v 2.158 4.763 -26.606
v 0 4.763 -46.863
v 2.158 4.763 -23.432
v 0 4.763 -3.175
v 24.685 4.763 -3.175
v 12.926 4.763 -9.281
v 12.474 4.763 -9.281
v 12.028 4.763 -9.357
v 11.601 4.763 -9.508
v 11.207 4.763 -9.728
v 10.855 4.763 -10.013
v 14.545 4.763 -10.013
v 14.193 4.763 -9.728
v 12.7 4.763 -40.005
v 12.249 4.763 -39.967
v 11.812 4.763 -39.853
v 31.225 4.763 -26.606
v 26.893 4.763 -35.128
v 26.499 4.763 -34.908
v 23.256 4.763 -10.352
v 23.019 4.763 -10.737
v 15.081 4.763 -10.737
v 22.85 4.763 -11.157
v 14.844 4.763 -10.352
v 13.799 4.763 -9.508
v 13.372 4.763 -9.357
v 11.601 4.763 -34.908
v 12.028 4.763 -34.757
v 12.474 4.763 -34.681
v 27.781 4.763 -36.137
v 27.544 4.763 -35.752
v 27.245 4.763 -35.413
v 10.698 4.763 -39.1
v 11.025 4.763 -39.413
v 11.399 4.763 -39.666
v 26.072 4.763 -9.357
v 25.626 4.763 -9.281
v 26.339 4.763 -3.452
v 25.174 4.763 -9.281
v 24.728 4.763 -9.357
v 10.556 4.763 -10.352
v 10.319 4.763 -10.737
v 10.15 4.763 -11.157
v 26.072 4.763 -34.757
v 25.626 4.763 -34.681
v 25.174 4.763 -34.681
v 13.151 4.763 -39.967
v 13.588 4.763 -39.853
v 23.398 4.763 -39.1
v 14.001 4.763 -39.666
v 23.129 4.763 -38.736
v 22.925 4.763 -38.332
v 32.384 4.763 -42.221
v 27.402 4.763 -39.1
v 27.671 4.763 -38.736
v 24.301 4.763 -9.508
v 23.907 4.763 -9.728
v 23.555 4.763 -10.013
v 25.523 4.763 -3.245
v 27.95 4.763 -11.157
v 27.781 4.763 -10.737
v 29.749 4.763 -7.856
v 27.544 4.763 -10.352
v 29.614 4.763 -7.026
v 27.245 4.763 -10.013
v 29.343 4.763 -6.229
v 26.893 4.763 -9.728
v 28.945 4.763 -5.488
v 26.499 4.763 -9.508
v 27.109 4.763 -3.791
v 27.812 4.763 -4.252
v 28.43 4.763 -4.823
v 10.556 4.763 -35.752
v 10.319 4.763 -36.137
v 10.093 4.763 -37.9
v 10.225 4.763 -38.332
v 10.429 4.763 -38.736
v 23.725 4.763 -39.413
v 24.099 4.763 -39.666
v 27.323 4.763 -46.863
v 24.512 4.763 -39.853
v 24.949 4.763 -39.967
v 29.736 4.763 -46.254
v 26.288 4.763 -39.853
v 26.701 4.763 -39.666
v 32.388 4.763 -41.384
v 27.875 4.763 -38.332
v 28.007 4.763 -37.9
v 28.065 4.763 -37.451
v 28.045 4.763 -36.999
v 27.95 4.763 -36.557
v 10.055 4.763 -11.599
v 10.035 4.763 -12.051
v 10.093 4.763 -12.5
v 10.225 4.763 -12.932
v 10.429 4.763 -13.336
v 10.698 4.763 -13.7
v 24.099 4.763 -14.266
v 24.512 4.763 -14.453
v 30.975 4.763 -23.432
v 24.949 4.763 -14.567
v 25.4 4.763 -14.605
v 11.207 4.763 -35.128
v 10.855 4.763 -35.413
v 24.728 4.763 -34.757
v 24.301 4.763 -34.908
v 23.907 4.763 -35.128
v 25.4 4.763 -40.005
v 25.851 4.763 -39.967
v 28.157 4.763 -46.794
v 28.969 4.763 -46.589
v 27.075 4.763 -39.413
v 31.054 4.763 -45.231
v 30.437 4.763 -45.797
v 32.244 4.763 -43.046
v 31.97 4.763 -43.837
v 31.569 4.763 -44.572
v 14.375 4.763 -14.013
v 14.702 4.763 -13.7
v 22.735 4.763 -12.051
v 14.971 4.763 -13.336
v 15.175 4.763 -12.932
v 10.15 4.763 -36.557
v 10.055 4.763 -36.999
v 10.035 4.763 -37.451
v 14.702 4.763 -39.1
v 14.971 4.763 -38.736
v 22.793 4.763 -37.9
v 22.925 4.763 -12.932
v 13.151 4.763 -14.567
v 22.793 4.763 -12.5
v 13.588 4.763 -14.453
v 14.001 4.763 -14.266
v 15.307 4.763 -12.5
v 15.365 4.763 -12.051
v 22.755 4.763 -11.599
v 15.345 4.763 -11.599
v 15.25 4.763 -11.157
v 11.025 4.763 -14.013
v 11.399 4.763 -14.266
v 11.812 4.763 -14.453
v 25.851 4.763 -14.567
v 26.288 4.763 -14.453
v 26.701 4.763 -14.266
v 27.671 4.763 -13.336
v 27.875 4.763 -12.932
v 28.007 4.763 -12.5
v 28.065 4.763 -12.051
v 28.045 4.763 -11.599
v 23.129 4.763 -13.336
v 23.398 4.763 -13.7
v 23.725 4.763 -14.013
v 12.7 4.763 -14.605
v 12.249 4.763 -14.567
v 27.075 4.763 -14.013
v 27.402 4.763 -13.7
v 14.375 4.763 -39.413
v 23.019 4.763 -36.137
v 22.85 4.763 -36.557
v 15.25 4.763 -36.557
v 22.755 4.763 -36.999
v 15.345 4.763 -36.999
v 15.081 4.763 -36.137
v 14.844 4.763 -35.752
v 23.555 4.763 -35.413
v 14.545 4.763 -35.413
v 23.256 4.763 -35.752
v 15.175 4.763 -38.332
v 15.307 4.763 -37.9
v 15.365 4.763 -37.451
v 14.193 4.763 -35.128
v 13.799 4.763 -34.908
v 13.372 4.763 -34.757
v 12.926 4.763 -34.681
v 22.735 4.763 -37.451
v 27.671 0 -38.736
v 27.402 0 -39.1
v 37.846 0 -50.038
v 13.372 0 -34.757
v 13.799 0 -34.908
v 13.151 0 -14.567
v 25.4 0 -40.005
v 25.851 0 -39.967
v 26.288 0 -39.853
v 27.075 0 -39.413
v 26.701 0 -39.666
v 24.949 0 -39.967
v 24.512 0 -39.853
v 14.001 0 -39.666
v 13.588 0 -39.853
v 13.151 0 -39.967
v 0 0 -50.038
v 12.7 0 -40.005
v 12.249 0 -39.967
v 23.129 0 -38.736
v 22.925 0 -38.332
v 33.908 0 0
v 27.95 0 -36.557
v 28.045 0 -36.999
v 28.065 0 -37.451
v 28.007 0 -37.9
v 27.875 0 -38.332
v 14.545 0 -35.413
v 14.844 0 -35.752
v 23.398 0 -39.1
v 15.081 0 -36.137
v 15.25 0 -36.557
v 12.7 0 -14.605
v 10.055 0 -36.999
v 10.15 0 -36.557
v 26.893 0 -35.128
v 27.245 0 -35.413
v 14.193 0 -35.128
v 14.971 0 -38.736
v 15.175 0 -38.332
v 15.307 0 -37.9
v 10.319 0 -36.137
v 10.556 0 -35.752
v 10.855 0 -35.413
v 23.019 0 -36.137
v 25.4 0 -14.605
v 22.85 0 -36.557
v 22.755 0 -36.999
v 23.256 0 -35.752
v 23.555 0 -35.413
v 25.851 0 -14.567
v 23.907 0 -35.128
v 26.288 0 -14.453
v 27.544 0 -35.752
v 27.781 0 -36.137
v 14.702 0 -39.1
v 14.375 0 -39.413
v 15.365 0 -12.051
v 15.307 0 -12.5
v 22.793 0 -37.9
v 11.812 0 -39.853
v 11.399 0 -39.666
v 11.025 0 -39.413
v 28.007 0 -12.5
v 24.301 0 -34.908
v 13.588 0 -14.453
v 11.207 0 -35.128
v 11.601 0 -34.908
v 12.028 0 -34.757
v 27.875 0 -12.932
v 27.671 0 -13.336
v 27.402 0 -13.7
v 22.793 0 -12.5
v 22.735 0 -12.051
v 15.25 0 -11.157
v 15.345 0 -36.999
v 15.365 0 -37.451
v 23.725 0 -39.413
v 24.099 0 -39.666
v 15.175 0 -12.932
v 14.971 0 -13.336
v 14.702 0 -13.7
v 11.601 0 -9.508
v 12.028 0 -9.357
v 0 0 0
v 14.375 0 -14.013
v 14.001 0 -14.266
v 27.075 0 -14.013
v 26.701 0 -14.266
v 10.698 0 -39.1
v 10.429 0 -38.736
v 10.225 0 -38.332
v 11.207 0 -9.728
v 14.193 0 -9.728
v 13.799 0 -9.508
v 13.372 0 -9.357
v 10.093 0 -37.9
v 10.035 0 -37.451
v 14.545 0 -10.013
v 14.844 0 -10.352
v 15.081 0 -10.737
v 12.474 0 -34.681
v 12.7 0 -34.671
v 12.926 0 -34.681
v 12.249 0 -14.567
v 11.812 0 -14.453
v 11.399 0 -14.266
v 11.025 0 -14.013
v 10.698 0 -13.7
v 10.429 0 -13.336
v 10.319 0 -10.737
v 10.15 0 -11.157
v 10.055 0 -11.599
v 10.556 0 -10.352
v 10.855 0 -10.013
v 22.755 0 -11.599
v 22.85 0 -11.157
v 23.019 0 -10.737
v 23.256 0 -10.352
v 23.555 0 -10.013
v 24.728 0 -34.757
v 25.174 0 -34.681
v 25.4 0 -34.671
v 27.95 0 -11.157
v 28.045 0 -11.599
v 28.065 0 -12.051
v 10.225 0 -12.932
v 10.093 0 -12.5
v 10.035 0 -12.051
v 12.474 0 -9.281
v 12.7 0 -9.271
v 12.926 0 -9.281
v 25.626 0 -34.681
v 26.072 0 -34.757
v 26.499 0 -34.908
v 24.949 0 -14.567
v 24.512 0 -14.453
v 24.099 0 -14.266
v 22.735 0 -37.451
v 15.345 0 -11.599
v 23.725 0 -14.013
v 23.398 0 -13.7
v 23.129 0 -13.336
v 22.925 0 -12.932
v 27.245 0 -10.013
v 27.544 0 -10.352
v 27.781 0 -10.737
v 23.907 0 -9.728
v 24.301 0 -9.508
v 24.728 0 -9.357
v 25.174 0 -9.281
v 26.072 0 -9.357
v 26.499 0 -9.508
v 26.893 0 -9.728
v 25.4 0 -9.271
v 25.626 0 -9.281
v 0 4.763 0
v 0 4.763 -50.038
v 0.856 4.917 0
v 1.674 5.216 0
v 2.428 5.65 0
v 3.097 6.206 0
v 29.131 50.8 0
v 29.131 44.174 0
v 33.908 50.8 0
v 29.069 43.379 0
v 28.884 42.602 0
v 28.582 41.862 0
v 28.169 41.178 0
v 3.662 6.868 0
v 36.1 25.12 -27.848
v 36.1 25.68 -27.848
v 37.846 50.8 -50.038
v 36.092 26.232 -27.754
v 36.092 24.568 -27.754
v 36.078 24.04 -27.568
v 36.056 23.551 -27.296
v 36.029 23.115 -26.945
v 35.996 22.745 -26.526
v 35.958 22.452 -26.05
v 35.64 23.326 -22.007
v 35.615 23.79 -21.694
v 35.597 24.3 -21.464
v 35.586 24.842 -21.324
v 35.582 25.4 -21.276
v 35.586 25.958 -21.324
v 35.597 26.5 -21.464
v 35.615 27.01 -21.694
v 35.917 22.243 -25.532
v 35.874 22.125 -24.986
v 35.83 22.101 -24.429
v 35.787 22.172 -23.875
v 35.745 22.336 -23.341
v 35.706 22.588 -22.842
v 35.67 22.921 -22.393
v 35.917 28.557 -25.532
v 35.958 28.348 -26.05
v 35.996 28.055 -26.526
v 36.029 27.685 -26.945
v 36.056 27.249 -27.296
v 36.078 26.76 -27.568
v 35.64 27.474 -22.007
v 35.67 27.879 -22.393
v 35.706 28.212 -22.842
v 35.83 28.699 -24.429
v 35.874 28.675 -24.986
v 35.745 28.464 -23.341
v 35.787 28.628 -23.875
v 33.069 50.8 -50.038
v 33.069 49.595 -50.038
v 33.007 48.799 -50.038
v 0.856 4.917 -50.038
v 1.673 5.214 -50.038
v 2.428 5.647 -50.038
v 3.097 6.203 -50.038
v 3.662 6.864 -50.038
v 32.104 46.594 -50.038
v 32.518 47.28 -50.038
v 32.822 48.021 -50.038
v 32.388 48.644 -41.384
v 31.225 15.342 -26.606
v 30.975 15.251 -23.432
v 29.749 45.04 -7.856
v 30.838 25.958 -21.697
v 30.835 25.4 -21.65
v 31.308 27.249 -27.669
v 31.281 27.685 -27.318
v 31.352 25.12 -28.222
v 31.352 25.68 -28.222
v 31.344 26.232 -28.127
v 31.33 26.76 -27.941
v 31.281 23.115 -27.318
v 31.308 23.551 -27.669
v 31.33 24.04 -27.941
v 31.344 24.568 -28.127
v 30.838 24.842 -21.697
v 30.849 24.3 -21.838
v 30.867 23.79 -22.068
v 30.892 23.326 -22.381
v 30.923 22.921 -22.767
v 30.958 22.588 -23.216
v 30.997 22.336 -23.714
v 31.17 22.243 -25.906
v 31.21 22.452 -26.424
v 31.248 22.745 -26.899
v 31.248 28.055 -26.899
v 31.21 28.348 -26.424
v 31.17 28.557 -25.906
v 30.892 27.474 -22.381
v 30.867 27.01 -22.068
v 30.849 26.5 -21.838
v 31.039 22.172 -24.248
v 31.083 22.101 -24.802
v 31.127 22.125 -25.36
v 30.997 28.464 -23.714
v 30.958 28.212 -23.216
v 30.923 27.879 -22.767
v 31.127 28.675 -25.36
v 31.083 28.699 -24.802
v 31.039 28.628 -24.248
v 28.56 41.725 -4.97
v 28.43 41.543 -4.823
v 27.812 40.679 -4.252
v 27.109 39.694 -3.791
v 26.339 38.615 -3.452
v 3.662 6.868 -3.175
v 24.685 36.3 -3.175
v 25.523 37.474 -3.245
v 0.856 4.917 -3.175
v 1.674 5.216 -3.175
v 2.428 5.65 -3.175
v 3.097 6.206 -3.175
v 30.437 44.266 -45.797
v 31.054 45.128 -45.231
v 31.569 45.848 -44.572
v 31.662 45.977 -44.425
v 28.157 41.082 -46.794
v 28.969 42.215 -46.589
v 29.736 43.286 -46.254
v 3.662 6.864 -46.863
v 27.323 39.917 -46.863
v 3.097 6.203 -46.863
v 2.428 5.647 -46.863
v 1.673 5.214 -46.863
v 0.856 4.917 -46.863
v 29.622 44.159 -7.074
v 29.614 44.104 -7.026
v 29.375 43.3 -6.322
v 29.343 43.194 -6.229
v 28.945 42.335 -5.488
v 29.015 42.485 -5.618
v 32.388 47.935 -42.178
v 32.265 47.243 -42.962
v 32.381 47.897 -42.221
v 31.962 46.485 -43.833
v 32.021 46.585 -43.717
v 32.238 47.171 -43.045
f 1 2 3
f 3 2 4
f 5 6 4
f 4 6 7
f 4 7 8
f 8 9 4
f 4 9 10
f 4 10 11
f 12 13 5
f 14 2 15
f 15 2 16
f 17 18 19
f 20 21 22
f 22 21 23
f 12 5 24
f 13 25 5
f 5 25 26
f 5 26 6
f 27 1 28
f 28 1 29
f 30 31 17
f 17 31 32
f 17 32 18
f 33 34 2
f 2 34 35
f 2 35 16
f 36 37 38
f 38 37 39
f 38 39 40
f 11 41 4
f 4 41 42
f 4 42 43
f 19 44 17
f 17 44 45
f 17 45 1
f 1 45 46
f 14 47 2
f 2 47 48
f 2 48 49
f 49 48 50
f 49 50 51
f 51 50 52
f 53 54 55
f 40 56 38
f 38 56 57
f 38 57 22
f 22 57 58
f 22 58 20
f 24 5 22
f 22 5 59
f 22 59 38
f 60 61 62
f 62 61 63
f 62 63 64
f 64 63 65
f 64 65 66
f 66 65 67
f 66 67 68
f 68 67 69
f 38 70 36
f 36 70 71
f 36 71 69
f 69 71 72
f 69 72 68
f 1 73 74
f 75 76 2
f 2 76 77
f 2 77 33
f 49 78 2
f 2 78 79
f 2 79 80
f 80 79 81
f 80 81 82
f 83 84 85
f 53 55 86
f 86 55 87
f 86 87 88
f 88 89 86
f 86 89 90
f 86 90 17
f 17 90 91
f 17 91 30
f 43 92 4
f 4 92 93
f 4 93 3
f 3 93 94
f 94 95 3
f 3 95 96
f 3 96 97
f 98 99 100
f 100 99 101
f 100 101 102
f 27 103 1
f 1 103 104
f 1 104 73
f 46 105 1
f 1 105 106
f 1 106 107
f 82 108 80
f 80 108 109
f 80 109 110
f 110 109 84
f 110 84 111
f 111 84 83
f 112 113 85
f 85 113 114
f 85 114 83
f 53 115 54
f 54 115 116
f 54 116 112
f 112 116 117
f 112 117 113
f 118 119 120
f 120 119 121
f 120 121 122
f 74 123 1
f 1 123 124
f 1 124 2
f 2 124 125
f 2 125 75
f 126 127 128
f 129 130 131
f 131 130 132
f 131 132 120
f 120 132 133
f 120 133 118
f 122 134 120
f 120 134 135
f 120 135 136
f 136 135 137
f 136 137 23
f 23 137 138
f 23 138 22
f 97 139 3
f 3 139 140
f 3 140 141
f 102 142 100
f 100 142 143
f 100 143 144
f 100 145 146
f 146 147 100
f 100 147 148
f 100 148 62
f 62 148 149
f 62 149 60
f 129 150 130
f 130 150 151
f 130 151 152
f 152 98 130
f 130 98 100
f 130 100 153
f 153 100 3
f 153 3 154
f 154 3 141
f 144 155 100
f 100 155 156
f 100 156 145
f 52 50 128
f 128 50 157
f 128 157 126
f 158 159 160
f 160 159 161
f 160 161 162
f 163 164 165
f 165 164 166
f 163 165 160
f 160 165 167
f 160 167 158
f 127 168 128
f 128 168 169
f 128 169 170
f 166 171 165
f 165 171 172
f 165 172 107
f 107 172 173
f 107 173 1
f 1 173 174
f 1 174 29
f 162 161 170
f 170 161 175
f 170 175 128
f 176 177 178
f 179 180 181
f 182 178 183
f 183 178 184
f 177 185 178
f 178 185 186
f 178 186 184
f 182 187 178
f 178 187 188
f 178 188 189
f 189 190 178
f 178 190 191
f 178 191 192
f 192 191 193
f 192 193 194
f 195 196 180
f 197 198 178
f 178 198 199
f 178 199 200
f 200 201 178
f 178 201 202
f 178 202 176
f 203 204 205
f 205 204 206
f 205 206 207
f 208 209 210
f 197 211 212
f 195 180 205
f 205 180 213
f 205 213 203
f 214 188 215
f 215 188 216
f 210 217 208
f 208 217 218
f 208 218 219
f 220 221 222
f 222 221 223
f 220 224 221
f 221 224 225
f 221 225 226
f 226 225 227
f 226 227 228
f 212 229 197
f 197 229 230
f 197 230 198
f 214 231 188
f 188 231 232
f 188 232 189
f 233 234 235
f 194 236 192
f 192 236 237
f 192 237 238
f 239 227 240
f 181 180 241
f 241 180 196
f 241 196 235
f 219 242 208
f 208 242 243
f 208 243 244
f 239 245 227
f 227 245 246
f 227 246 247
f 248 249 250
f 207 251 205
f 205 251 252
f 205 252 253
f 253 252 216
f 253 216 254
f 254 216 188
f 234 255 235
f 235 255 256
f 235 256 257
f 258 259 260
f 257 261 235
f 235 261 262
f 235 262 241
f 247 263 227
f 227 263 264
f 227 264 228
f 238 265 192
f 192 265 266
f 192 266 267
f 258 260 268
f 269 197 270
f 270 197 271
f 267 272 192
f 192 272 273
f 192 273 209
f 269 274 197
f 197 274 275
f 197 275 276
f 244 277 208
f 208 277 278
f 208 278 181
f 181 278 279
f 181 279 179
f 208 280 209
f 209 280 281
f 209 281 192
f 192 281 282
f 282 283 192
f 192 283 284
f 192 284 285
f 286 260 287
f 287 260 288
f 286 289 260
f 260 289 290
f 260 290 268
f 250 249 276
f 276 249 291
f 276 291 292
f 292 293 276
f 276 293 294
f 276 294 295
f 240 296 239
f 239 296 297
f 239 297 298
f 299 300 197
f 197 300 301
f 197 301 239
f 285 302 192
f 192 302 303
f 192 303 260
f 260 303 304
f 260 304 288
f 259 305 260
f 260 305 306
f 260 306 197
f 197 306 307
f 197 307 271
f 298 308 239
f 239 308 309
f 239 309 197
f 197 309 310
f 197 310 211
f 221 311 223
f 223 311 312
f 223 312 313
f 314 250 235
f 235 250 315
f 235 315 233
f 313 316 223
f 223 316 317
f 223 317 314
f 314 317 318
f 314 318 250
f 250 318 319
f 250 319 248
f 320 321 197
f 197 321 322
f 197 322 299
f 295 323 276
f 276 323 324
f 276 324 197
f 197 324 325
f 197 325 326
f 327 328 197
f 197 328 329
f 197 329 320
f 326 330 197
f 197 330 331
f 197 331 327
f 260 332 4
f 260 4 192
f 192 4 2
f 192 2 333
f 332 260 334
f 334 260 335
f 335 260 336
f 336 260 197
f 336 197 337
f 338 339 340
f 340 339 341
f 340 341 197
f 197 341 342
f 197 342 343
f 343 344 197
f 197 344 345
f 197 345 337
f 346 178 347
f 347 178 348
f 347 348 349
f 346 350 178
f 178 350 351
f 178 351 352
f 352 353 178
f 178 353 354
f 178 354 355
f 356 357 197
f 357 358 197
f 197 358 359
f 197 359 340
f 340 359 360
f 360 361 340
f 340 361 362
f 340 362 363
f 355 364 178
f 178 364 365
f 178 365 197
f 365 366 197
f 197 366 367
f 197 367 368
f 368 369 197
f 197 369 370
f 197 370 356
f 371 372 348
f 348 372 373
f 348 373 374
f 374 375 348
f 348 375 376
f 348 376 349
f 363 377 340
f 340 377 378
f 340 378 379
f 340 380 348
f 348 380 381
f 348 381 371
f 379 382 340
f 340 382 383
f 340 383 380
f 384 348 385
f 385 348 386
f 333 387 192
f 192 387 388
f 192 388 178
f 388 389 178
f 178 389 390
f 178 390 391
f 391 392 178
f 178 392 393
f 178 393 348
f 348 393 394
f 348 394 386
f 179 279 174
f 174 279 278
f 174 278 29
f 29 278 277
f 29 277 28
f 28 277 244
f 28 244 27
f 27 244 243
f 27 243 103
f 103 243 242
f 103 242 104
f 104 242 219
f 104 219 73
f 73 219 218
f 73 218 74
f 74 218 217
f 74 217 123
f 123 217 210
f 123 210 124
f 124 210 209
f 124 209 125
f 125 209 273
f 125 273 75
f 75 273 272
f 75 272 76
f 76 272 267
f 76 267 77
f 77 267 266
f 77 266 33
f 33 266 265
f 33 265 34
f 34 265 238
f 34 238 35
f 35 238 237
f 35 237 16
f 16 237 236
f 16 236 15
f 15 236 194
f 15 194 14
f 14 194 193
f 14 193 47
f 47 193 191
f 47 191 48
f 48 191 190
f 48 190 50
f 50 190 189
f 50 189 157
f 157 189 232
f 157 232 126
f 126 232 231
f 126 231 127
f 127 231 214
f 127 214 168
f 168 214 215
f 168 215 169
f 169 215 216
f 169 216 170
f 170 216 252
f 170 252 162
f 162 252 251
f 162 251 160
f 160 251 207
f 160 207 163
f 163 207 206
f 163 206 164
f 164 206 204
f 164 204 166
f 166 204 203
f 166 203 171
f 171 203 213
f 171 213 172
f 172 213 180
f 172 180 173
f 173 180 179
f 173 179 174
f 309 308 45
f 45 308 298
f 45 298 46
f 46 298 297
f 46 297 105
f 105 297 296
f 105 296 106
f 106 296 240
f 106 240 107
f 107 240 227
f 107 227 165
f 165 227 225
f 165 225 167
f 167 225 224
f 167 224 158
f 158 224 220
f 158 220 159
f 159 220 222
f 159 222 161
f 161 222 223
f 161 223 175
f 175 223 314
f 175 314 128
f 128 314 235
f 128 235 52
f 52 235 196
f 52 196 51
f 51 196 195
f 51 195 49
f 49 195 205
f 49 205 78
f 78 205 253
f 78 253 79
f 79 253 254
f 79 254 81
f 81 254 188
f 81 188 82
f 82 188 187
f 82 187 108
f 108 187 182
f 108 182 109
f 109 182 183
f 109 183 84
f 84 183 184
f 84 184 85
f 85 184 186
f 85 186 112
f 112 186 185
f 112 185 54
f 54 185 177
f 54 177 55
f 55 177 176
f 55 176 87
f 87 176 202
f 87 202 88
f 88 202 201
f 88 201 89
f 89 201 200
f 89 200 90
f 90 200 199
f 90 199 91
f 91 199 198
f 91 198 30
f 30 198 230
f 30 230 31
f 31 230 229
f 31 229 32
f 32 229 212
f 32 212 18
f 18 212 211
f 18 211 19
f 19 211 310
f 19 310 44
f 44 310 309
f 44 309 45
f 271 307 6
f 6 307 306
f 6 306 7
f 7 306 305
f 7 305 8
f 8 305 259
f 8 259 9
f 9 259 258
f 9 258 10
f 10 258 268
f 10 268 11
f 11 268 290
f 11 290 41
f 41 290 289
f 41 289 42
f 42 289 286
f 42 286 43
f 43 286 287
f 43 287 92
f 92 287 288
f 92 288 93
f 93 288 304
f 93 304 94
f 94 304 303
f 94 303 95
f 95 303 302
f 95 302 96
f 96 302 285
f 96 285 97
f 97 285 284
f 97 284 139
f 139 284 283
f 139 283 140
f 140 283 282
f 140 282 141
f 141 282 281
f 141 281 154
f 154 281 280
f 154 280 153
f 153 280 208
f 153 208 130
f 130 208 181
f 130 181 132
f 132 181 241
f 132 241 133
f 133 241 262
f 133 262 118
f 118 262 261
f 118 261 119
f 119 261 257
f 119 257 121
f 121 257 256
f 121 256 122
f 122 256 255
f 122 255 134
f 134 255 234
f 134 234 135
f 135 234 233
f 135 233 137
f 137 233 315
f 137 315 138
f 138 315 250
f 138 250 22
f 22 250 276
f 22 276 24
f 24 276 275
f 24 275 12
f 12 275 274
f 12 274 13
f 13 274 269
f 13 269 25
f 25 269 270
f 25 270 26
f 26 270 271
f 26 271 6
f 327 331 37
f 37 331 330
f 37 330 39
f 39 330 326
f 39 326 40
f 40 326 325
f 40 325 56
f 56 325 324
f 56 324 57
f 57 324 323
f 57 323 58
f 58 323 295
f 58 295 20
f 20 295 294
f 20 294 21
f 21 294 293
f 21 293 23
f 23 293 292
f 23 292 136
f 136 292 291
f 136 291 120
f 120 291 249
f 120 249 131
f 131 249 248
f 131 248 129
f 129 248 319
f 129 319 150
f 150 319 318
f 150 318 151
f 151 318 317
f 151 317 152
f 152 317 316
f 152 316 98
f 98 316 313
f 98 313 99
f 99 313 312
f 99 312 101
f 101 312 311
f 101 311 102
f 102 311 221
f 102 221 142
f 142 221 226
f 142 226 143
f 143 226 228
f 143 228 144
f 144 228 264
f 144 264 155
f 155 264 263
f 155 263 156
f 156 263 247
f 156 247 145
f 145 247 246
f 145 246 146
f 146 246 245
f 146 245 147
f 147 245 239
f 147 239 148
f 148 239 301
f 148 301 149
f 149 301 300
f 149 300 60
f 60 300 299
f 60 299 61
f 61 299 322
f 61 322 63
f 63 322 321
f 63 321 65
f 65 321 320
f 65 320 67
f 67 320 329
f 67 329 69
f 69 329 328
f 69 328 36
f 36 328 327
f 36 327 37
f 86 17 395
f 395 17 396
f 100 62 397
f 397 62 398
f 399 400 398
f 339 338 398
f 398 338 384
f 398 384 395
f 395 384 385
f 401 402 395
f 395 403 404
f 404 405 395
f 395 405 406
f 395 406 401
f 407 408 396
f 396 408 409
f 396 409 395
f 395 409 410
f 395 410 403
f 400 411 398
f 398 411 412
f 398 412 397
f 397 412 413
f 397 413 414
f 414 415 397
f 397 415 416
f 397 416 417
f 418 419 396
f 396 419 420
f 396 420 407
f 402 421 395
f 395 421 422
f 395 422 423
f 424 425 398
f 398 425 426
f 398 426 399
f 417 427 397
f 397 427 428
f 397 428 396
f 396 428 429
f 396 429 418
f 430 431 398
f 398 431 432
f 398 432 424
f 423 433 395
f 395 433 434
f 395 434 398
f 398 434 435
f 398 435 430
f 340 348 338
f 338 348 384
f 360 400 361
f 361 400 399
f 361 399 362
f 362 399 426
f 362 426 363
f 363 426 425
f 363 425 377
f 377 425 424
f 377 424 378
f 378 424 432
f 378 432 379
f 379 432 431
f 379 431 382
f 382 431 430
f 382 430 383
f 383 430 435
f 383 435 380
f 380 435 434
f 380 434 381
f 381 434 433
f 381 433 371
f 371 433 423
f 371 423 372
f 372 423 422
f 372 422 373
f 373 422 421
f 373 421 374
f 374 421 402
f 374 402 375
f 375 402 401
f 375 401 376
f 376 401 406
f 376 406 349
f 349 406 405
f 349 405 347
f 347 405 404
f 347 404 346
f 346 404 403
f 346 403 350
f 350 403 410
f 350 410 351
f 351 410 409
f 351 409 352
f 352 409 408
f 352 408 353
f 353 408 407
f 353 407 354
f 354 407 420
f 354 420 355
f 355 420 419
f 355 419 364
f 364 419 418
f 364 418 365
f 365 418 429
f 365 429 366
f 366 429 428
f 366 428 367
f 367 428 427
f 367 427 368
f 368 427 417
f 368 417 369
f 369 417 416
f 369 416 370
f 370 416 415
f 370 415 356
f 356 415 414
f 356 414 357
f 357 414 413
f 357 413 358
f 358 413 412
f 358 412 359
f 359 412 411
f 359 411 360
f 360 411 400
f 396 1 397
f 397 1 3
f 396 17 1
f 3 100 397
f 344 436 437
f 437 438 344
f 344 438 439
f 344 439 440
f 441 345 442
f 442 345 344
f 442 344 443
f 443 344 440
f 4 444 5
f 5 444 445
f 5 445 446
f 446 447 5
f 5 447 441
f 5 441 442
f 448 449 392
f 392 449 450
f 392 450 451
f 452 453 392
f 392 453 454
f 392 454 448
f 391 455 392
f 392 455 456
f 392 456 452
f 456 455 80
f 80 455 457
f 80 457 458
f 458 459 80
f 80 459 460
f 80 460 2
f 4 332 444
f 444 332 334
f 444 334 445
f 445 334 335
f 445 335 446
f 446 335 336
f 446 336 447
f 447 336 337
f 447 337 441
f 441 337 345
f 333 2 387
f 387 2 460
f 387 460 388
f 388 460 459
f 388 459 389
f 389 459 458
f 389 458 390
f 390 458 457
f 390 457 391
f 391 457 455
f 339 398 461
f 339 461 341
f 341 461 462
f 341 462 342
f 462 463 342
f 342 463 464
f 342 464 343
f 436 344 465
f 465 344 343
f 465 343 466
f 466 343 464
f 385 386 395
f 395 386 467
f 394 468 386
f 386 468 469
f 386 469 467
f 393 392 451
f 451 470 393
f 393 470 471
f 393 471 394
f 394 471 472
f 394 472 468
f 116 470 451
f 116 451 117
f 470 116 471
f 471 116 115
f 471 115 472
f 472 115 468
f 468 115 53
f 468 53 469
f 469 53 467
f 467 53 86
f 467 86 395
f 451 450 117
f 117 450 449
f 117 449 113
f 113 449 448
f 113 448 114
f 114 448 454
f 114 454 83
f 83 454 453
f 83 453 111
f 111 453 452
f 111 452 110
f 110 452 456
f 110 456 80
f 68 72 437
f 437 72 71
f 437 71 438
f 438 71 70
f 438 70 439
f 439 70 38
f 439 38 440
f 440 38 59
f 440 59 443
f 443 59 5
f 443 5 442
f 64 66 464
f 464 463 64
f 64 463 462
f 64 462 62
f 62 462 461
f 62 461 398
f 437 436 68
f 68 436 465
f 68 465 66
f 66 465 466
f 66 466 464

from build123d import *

# Parameters (mm, degrees)
SKETCH1_R           = 2.667
BOSS_EXTRUDE1_DEPTH = 4.7625
BOSS_EXTRUDE2_DEPTH = 50.8
SKETCH4_R           = 3.302
CUT_EXTRUDE1_DEPTH  = 55.626
BOSS_EXTRUDE3_DEPTH = 50.038
CUT_EXTRUDE5_DEPTH  = 46.0375
BOSS_EXTRUDE4_DEPTH = 3.175
BOSS_EXTRUDE5_DEPTH = 3.175
FILLET1_R           = 5.08
FILLET2_R           = 5.08


with BuildPart() as part:
    # Sketch1 → Boss-Extrude1 (new body)
    with BuildSketch(Plane(origin=(0, 0, 0), x_dir=(1, 0, 0), z_dir=(0, 1, 0))):
        Polygon((37.846, 50.038), (33.907923994, 0), (0, 0), (0, 50.038), align=None)
        with Locations(Location((12.7, 37.338, 0), (0, 0, 90))):
            Circle(SKETCH1_R, mode=Mode.SUBTRACT)
        with Locations(Location((25.4, 37.338, 0), (0, 0, 90))):
            Circle(SKETCH1_R, mode=Mode.SUBTRACT)
        with Locations(Location((12.7, 11.938, 0), (0, 0, 90))):
            Circle(SKETCH1_R, mode=Mode.SUBTRACT)
        with Locations(Location((25.4, 11.938, 0), (0, 0, 90))):
            Circle(SKETCH1_R, mode=Mode.SUBTRACT)
    extrude(amount=BOSS_EXTRUDE1_DEPTH)

    # Sketch2 → Boss-Extrude2 (add)
    with BuildSketch(Plane.XZ):
        Polygon((29.2288268, -1.246852262), (33.068773405, -50.038), (37.846, -50.038), (33.907923994, 0), (29.130697399, 0), (29.160105192, -0.373661443), align=None)
    extrude(amount=-BOSS_EXTRUDE2_DEPTH)

    # Sketch4 → Cut-Extrude1 (cut)
    with BuildSketch(Plane(origin=(28.951373786, 0, 2.278522532), x_dir=(-0.07845909572784877, 0, 0.9969173337331276), z_dir=(-0.9969173337331276, 0, -0.07845909572784877))):
        with Locations((-27.304568176, 25.4)):
            Circle(SKETCH4_R)
    extrude(amount=-CUT_EXTRUDE1_DEPTH, mode=Mode.SUBTRACT)

    # Sketch5 → Boss-Extrude3 (add)
    with BuildSketch(Plane.XY):
        Polygon((2.157923994, 4.7625), (33.907923994, 16.318554938), (33.907923994, 4.7625), align=None)
    extrude(amount=-BOSS_EXTRUDE3_DEPTH)

    # Sketch7 → Cut-Extrude5 (cut)
    with BuildSketch(Plane(origin=(0, 50.8, 0), x_dir=(1, 0, 0), z_dir=(0, 1, 0))):
        Polygon((33.068773405, 50.038), (31.224674361, 26.6065), (2.157923994, 26.6065), (2.157923994, 50.038), align=None)
        Polygon((2.157923994, 23.4315), (30.974796442, 23.4315), (29.130697399, 0), (2.157923994, 0), align=None)
    extrude(amount=-CUT_EXTRUDE5_DEPTH, mode=Mode.SUBTRACT)

    # Sketch8 → Boss-Extrude4 (add)
    with BuildSketch(Plane.XY):
        Polygon((2.157923994, 4.7625), (33.907923994, 49.2125), (33.907923994, 4.7625), align=None)
    extrude(amount=-BOSS_EXTRUDE4_DEPTH)

    # Sketch9 → Boss-Extrude5 (add)
    with BuildSketch(Plane(origin=(0, 0, -50.038), x_dir=(-1, 0, 0), z_dir=(0, 0, -1))):
        Polygon((-2.157923994, 4.7625), (-33.068773405, 47.9425), (-33.068773405, 4.7625), align=None)
    extrude(amount=-BOSS_EXTRUDE5_DEPTH)

    # Fillet1
    # the kernel refuses this fillet: 5.08 mm, written as the material it adds along each edge
    with BuildSketch(Plane(origin=(2.157923994, 4.7625, 0), x_dir=(-1, 0, 0), z_dir=(0, 0, -1))) as fillet1_piece_1:
        with BuildLine():
            CenterArc((2.629957643, 5.058021771), FILLET1_R, 215.537677792, 49.130706658)
            Line((-1.503808391, 2.105331747), (-1.586483711, 2.046277946))
            Line((-1.586483711, 2.046277946), (-0.082675321, -0.0590538))
            Line((-0.082675321, -0.0590538), (0, -0.1016))
            ThreePointArc((0, -0.1016), (1.078961997, -0.1016), (2.148483321, -0.101160435))
            Line((2.148483321, -0.101160435), (2.157923994, 0))
        make_face()
    extrude(amount=3.175)
    with BuildSketch(Plane(origin=(2.157923994, 4.7625, -50.038), x_dir=(-1, 0, 0), z_dir=(0, 0, 1))) as fillet1_piece_2:
        with BuildLine():
            CenterArc((2.626409807, -5.058351613), FILLET1_R, 95.291428018, 49.111198854)
            Line((-1.504277635, -2.101356304), (-1.586891383, -2.042216397))
            Line((-1.586891383, -2.042216397), (-0.082613749, 0.059139906))
            Line((-0.082613749, 0.059139906), (0, 0.1016))
            ThreePointArc((0, 0.1016), (1.078961997, 0.1016), (2.148554278, 0.101167032))
            Line((2.148554278, 0.101167032), (2.157923994, 0))
        make_face()
    extrude(amount=3.175)
    with BuildSketch(Plane(origin=(29.700338722, 43.32188062, -7.237979285), x_dir=(-0.008566636475351457, 0.9940213341844409, 0.10884943695620641), z_dir=(-0.07799001501429913, -0.10918602102001876, 0.9909570981489993))) as fillet1_piece_3_section:
        with BuildLine():
            CenterArc((FILLET1_R * 0.322839030398, FILLET1_R), FILLET1_R, 234.215790713, 35.784209287)
            Line((-FILLET1_R * 0.261895093237, FILLET1_R * 0.188774997515), (-FILLET1_R * 0.27358977571, FILLET1_R * 0.172550497465))
            Line((-FILLET1_R * 0.27358977571, FILLET1_R * 0.172550497465), (-FILLET1_R * 0.00645678060796, -FILLET1_R * 0.02))
            Line((-FILLET1_R * 0.00645678060796, -FILLET1_R * 0.02), (FILLET1_R * 0.322839030398, -FILLET1_R * 0.02))
            Line((FILLET1_R * 0.322839030398, -FILLET1_R * 0.02), (FILLET1_R * 0.322839030398, 0))
        make_face()
    fillet1_piece_3 = extrude(amount=11.404084587, mode=Mode.PRIVATE)
    fillet1_piece_3 = split(fillet1_piece_3, bisect_by=Plane(origin=(29.0621266, 42.760284123, 0), z_dir=(0, 0, -1)), keep=Keep.TOP, mode=Mode.PRIVATE)
    fillet1_piece_3 = split(fillet1_piece_3, bisect_by=Plane(origin=(29.0621266, 42.760284123, -3.175), z_dir=(0, 0, 1)), keep=Keep.TOP, mode=Mode.PRIVATE)
    add(fillet1_piece_3)
    with BuildSketch(Plane(origin=(32.498558986, 47.145955774, -42.792738849), x_dir=(-0.008548017001345628, 0.994047372778579, 0.1086128541073727), z_dir=(0.07799205797884924, 0.10894870661005905, -0.9909830564748416))) as fillet1_piece_4_section:
        with BuildLine():
            CenterArc((FILLET1_R * 0.32340916623, -FILLET1_R), FILLET1_R, 90, 35.843365579)
            Line((-FILLET1_R * 0.262162212759, -FILLET1_R * 0.189379151447), (-FILLET1_R * 0.273873640339, -FILLET1_R * 0.173166734476))
            Line((-FILLET1_R * 0.273873640339, -FILLET1_R * 0.173166734476), (-FILLET1_R * 0.0064681833246, FILLET1_R * 0.02))
            Line((-FILLET1_R * 0.0064681833246, FILLET1_R * 0.02), (FILLET1_R * 0.32340916623, FILLET1_R * 0.02))
            Line((FILLET1_R * 0.32340916623, FILLET1_R * 0.02), (FILLET1_R * 0.32340916623, 0))
        make_face()
    fillet1_piece_4 = extrude(amount=11.418482111, mode=Mode.PRIVATE)
    fillet1_piece_4 = split(fillet1_piece_4, bisect_by=Plane(origin=(32.749606974, 47.829296301, -50.038), z_dir=(0, 0, 1)), keep=Keep.TOP, mode=Mode.PRIVATE)
    fillet1_piece_4 = split(fillet1_piece_4, bisect_by=Plane(origin=(32.749606974, 47.829296301, -46.863), z_dir=(0, 0, -1)), keep=Keep.TOP, mode=Mode.PRIVATE)
    add(fillet1_piece_4)

    # Fillet2
    fillet2_edges = [part.edges().sort_by_distance(p)[0] for p in [
        (32.818895486, 27.004348608, -46.863),
        (29.380575318, 24.643299124, -3.175),
    ]]
    fillet(fillet2_edges, radius=FILLET2_R)


solid = part.part
